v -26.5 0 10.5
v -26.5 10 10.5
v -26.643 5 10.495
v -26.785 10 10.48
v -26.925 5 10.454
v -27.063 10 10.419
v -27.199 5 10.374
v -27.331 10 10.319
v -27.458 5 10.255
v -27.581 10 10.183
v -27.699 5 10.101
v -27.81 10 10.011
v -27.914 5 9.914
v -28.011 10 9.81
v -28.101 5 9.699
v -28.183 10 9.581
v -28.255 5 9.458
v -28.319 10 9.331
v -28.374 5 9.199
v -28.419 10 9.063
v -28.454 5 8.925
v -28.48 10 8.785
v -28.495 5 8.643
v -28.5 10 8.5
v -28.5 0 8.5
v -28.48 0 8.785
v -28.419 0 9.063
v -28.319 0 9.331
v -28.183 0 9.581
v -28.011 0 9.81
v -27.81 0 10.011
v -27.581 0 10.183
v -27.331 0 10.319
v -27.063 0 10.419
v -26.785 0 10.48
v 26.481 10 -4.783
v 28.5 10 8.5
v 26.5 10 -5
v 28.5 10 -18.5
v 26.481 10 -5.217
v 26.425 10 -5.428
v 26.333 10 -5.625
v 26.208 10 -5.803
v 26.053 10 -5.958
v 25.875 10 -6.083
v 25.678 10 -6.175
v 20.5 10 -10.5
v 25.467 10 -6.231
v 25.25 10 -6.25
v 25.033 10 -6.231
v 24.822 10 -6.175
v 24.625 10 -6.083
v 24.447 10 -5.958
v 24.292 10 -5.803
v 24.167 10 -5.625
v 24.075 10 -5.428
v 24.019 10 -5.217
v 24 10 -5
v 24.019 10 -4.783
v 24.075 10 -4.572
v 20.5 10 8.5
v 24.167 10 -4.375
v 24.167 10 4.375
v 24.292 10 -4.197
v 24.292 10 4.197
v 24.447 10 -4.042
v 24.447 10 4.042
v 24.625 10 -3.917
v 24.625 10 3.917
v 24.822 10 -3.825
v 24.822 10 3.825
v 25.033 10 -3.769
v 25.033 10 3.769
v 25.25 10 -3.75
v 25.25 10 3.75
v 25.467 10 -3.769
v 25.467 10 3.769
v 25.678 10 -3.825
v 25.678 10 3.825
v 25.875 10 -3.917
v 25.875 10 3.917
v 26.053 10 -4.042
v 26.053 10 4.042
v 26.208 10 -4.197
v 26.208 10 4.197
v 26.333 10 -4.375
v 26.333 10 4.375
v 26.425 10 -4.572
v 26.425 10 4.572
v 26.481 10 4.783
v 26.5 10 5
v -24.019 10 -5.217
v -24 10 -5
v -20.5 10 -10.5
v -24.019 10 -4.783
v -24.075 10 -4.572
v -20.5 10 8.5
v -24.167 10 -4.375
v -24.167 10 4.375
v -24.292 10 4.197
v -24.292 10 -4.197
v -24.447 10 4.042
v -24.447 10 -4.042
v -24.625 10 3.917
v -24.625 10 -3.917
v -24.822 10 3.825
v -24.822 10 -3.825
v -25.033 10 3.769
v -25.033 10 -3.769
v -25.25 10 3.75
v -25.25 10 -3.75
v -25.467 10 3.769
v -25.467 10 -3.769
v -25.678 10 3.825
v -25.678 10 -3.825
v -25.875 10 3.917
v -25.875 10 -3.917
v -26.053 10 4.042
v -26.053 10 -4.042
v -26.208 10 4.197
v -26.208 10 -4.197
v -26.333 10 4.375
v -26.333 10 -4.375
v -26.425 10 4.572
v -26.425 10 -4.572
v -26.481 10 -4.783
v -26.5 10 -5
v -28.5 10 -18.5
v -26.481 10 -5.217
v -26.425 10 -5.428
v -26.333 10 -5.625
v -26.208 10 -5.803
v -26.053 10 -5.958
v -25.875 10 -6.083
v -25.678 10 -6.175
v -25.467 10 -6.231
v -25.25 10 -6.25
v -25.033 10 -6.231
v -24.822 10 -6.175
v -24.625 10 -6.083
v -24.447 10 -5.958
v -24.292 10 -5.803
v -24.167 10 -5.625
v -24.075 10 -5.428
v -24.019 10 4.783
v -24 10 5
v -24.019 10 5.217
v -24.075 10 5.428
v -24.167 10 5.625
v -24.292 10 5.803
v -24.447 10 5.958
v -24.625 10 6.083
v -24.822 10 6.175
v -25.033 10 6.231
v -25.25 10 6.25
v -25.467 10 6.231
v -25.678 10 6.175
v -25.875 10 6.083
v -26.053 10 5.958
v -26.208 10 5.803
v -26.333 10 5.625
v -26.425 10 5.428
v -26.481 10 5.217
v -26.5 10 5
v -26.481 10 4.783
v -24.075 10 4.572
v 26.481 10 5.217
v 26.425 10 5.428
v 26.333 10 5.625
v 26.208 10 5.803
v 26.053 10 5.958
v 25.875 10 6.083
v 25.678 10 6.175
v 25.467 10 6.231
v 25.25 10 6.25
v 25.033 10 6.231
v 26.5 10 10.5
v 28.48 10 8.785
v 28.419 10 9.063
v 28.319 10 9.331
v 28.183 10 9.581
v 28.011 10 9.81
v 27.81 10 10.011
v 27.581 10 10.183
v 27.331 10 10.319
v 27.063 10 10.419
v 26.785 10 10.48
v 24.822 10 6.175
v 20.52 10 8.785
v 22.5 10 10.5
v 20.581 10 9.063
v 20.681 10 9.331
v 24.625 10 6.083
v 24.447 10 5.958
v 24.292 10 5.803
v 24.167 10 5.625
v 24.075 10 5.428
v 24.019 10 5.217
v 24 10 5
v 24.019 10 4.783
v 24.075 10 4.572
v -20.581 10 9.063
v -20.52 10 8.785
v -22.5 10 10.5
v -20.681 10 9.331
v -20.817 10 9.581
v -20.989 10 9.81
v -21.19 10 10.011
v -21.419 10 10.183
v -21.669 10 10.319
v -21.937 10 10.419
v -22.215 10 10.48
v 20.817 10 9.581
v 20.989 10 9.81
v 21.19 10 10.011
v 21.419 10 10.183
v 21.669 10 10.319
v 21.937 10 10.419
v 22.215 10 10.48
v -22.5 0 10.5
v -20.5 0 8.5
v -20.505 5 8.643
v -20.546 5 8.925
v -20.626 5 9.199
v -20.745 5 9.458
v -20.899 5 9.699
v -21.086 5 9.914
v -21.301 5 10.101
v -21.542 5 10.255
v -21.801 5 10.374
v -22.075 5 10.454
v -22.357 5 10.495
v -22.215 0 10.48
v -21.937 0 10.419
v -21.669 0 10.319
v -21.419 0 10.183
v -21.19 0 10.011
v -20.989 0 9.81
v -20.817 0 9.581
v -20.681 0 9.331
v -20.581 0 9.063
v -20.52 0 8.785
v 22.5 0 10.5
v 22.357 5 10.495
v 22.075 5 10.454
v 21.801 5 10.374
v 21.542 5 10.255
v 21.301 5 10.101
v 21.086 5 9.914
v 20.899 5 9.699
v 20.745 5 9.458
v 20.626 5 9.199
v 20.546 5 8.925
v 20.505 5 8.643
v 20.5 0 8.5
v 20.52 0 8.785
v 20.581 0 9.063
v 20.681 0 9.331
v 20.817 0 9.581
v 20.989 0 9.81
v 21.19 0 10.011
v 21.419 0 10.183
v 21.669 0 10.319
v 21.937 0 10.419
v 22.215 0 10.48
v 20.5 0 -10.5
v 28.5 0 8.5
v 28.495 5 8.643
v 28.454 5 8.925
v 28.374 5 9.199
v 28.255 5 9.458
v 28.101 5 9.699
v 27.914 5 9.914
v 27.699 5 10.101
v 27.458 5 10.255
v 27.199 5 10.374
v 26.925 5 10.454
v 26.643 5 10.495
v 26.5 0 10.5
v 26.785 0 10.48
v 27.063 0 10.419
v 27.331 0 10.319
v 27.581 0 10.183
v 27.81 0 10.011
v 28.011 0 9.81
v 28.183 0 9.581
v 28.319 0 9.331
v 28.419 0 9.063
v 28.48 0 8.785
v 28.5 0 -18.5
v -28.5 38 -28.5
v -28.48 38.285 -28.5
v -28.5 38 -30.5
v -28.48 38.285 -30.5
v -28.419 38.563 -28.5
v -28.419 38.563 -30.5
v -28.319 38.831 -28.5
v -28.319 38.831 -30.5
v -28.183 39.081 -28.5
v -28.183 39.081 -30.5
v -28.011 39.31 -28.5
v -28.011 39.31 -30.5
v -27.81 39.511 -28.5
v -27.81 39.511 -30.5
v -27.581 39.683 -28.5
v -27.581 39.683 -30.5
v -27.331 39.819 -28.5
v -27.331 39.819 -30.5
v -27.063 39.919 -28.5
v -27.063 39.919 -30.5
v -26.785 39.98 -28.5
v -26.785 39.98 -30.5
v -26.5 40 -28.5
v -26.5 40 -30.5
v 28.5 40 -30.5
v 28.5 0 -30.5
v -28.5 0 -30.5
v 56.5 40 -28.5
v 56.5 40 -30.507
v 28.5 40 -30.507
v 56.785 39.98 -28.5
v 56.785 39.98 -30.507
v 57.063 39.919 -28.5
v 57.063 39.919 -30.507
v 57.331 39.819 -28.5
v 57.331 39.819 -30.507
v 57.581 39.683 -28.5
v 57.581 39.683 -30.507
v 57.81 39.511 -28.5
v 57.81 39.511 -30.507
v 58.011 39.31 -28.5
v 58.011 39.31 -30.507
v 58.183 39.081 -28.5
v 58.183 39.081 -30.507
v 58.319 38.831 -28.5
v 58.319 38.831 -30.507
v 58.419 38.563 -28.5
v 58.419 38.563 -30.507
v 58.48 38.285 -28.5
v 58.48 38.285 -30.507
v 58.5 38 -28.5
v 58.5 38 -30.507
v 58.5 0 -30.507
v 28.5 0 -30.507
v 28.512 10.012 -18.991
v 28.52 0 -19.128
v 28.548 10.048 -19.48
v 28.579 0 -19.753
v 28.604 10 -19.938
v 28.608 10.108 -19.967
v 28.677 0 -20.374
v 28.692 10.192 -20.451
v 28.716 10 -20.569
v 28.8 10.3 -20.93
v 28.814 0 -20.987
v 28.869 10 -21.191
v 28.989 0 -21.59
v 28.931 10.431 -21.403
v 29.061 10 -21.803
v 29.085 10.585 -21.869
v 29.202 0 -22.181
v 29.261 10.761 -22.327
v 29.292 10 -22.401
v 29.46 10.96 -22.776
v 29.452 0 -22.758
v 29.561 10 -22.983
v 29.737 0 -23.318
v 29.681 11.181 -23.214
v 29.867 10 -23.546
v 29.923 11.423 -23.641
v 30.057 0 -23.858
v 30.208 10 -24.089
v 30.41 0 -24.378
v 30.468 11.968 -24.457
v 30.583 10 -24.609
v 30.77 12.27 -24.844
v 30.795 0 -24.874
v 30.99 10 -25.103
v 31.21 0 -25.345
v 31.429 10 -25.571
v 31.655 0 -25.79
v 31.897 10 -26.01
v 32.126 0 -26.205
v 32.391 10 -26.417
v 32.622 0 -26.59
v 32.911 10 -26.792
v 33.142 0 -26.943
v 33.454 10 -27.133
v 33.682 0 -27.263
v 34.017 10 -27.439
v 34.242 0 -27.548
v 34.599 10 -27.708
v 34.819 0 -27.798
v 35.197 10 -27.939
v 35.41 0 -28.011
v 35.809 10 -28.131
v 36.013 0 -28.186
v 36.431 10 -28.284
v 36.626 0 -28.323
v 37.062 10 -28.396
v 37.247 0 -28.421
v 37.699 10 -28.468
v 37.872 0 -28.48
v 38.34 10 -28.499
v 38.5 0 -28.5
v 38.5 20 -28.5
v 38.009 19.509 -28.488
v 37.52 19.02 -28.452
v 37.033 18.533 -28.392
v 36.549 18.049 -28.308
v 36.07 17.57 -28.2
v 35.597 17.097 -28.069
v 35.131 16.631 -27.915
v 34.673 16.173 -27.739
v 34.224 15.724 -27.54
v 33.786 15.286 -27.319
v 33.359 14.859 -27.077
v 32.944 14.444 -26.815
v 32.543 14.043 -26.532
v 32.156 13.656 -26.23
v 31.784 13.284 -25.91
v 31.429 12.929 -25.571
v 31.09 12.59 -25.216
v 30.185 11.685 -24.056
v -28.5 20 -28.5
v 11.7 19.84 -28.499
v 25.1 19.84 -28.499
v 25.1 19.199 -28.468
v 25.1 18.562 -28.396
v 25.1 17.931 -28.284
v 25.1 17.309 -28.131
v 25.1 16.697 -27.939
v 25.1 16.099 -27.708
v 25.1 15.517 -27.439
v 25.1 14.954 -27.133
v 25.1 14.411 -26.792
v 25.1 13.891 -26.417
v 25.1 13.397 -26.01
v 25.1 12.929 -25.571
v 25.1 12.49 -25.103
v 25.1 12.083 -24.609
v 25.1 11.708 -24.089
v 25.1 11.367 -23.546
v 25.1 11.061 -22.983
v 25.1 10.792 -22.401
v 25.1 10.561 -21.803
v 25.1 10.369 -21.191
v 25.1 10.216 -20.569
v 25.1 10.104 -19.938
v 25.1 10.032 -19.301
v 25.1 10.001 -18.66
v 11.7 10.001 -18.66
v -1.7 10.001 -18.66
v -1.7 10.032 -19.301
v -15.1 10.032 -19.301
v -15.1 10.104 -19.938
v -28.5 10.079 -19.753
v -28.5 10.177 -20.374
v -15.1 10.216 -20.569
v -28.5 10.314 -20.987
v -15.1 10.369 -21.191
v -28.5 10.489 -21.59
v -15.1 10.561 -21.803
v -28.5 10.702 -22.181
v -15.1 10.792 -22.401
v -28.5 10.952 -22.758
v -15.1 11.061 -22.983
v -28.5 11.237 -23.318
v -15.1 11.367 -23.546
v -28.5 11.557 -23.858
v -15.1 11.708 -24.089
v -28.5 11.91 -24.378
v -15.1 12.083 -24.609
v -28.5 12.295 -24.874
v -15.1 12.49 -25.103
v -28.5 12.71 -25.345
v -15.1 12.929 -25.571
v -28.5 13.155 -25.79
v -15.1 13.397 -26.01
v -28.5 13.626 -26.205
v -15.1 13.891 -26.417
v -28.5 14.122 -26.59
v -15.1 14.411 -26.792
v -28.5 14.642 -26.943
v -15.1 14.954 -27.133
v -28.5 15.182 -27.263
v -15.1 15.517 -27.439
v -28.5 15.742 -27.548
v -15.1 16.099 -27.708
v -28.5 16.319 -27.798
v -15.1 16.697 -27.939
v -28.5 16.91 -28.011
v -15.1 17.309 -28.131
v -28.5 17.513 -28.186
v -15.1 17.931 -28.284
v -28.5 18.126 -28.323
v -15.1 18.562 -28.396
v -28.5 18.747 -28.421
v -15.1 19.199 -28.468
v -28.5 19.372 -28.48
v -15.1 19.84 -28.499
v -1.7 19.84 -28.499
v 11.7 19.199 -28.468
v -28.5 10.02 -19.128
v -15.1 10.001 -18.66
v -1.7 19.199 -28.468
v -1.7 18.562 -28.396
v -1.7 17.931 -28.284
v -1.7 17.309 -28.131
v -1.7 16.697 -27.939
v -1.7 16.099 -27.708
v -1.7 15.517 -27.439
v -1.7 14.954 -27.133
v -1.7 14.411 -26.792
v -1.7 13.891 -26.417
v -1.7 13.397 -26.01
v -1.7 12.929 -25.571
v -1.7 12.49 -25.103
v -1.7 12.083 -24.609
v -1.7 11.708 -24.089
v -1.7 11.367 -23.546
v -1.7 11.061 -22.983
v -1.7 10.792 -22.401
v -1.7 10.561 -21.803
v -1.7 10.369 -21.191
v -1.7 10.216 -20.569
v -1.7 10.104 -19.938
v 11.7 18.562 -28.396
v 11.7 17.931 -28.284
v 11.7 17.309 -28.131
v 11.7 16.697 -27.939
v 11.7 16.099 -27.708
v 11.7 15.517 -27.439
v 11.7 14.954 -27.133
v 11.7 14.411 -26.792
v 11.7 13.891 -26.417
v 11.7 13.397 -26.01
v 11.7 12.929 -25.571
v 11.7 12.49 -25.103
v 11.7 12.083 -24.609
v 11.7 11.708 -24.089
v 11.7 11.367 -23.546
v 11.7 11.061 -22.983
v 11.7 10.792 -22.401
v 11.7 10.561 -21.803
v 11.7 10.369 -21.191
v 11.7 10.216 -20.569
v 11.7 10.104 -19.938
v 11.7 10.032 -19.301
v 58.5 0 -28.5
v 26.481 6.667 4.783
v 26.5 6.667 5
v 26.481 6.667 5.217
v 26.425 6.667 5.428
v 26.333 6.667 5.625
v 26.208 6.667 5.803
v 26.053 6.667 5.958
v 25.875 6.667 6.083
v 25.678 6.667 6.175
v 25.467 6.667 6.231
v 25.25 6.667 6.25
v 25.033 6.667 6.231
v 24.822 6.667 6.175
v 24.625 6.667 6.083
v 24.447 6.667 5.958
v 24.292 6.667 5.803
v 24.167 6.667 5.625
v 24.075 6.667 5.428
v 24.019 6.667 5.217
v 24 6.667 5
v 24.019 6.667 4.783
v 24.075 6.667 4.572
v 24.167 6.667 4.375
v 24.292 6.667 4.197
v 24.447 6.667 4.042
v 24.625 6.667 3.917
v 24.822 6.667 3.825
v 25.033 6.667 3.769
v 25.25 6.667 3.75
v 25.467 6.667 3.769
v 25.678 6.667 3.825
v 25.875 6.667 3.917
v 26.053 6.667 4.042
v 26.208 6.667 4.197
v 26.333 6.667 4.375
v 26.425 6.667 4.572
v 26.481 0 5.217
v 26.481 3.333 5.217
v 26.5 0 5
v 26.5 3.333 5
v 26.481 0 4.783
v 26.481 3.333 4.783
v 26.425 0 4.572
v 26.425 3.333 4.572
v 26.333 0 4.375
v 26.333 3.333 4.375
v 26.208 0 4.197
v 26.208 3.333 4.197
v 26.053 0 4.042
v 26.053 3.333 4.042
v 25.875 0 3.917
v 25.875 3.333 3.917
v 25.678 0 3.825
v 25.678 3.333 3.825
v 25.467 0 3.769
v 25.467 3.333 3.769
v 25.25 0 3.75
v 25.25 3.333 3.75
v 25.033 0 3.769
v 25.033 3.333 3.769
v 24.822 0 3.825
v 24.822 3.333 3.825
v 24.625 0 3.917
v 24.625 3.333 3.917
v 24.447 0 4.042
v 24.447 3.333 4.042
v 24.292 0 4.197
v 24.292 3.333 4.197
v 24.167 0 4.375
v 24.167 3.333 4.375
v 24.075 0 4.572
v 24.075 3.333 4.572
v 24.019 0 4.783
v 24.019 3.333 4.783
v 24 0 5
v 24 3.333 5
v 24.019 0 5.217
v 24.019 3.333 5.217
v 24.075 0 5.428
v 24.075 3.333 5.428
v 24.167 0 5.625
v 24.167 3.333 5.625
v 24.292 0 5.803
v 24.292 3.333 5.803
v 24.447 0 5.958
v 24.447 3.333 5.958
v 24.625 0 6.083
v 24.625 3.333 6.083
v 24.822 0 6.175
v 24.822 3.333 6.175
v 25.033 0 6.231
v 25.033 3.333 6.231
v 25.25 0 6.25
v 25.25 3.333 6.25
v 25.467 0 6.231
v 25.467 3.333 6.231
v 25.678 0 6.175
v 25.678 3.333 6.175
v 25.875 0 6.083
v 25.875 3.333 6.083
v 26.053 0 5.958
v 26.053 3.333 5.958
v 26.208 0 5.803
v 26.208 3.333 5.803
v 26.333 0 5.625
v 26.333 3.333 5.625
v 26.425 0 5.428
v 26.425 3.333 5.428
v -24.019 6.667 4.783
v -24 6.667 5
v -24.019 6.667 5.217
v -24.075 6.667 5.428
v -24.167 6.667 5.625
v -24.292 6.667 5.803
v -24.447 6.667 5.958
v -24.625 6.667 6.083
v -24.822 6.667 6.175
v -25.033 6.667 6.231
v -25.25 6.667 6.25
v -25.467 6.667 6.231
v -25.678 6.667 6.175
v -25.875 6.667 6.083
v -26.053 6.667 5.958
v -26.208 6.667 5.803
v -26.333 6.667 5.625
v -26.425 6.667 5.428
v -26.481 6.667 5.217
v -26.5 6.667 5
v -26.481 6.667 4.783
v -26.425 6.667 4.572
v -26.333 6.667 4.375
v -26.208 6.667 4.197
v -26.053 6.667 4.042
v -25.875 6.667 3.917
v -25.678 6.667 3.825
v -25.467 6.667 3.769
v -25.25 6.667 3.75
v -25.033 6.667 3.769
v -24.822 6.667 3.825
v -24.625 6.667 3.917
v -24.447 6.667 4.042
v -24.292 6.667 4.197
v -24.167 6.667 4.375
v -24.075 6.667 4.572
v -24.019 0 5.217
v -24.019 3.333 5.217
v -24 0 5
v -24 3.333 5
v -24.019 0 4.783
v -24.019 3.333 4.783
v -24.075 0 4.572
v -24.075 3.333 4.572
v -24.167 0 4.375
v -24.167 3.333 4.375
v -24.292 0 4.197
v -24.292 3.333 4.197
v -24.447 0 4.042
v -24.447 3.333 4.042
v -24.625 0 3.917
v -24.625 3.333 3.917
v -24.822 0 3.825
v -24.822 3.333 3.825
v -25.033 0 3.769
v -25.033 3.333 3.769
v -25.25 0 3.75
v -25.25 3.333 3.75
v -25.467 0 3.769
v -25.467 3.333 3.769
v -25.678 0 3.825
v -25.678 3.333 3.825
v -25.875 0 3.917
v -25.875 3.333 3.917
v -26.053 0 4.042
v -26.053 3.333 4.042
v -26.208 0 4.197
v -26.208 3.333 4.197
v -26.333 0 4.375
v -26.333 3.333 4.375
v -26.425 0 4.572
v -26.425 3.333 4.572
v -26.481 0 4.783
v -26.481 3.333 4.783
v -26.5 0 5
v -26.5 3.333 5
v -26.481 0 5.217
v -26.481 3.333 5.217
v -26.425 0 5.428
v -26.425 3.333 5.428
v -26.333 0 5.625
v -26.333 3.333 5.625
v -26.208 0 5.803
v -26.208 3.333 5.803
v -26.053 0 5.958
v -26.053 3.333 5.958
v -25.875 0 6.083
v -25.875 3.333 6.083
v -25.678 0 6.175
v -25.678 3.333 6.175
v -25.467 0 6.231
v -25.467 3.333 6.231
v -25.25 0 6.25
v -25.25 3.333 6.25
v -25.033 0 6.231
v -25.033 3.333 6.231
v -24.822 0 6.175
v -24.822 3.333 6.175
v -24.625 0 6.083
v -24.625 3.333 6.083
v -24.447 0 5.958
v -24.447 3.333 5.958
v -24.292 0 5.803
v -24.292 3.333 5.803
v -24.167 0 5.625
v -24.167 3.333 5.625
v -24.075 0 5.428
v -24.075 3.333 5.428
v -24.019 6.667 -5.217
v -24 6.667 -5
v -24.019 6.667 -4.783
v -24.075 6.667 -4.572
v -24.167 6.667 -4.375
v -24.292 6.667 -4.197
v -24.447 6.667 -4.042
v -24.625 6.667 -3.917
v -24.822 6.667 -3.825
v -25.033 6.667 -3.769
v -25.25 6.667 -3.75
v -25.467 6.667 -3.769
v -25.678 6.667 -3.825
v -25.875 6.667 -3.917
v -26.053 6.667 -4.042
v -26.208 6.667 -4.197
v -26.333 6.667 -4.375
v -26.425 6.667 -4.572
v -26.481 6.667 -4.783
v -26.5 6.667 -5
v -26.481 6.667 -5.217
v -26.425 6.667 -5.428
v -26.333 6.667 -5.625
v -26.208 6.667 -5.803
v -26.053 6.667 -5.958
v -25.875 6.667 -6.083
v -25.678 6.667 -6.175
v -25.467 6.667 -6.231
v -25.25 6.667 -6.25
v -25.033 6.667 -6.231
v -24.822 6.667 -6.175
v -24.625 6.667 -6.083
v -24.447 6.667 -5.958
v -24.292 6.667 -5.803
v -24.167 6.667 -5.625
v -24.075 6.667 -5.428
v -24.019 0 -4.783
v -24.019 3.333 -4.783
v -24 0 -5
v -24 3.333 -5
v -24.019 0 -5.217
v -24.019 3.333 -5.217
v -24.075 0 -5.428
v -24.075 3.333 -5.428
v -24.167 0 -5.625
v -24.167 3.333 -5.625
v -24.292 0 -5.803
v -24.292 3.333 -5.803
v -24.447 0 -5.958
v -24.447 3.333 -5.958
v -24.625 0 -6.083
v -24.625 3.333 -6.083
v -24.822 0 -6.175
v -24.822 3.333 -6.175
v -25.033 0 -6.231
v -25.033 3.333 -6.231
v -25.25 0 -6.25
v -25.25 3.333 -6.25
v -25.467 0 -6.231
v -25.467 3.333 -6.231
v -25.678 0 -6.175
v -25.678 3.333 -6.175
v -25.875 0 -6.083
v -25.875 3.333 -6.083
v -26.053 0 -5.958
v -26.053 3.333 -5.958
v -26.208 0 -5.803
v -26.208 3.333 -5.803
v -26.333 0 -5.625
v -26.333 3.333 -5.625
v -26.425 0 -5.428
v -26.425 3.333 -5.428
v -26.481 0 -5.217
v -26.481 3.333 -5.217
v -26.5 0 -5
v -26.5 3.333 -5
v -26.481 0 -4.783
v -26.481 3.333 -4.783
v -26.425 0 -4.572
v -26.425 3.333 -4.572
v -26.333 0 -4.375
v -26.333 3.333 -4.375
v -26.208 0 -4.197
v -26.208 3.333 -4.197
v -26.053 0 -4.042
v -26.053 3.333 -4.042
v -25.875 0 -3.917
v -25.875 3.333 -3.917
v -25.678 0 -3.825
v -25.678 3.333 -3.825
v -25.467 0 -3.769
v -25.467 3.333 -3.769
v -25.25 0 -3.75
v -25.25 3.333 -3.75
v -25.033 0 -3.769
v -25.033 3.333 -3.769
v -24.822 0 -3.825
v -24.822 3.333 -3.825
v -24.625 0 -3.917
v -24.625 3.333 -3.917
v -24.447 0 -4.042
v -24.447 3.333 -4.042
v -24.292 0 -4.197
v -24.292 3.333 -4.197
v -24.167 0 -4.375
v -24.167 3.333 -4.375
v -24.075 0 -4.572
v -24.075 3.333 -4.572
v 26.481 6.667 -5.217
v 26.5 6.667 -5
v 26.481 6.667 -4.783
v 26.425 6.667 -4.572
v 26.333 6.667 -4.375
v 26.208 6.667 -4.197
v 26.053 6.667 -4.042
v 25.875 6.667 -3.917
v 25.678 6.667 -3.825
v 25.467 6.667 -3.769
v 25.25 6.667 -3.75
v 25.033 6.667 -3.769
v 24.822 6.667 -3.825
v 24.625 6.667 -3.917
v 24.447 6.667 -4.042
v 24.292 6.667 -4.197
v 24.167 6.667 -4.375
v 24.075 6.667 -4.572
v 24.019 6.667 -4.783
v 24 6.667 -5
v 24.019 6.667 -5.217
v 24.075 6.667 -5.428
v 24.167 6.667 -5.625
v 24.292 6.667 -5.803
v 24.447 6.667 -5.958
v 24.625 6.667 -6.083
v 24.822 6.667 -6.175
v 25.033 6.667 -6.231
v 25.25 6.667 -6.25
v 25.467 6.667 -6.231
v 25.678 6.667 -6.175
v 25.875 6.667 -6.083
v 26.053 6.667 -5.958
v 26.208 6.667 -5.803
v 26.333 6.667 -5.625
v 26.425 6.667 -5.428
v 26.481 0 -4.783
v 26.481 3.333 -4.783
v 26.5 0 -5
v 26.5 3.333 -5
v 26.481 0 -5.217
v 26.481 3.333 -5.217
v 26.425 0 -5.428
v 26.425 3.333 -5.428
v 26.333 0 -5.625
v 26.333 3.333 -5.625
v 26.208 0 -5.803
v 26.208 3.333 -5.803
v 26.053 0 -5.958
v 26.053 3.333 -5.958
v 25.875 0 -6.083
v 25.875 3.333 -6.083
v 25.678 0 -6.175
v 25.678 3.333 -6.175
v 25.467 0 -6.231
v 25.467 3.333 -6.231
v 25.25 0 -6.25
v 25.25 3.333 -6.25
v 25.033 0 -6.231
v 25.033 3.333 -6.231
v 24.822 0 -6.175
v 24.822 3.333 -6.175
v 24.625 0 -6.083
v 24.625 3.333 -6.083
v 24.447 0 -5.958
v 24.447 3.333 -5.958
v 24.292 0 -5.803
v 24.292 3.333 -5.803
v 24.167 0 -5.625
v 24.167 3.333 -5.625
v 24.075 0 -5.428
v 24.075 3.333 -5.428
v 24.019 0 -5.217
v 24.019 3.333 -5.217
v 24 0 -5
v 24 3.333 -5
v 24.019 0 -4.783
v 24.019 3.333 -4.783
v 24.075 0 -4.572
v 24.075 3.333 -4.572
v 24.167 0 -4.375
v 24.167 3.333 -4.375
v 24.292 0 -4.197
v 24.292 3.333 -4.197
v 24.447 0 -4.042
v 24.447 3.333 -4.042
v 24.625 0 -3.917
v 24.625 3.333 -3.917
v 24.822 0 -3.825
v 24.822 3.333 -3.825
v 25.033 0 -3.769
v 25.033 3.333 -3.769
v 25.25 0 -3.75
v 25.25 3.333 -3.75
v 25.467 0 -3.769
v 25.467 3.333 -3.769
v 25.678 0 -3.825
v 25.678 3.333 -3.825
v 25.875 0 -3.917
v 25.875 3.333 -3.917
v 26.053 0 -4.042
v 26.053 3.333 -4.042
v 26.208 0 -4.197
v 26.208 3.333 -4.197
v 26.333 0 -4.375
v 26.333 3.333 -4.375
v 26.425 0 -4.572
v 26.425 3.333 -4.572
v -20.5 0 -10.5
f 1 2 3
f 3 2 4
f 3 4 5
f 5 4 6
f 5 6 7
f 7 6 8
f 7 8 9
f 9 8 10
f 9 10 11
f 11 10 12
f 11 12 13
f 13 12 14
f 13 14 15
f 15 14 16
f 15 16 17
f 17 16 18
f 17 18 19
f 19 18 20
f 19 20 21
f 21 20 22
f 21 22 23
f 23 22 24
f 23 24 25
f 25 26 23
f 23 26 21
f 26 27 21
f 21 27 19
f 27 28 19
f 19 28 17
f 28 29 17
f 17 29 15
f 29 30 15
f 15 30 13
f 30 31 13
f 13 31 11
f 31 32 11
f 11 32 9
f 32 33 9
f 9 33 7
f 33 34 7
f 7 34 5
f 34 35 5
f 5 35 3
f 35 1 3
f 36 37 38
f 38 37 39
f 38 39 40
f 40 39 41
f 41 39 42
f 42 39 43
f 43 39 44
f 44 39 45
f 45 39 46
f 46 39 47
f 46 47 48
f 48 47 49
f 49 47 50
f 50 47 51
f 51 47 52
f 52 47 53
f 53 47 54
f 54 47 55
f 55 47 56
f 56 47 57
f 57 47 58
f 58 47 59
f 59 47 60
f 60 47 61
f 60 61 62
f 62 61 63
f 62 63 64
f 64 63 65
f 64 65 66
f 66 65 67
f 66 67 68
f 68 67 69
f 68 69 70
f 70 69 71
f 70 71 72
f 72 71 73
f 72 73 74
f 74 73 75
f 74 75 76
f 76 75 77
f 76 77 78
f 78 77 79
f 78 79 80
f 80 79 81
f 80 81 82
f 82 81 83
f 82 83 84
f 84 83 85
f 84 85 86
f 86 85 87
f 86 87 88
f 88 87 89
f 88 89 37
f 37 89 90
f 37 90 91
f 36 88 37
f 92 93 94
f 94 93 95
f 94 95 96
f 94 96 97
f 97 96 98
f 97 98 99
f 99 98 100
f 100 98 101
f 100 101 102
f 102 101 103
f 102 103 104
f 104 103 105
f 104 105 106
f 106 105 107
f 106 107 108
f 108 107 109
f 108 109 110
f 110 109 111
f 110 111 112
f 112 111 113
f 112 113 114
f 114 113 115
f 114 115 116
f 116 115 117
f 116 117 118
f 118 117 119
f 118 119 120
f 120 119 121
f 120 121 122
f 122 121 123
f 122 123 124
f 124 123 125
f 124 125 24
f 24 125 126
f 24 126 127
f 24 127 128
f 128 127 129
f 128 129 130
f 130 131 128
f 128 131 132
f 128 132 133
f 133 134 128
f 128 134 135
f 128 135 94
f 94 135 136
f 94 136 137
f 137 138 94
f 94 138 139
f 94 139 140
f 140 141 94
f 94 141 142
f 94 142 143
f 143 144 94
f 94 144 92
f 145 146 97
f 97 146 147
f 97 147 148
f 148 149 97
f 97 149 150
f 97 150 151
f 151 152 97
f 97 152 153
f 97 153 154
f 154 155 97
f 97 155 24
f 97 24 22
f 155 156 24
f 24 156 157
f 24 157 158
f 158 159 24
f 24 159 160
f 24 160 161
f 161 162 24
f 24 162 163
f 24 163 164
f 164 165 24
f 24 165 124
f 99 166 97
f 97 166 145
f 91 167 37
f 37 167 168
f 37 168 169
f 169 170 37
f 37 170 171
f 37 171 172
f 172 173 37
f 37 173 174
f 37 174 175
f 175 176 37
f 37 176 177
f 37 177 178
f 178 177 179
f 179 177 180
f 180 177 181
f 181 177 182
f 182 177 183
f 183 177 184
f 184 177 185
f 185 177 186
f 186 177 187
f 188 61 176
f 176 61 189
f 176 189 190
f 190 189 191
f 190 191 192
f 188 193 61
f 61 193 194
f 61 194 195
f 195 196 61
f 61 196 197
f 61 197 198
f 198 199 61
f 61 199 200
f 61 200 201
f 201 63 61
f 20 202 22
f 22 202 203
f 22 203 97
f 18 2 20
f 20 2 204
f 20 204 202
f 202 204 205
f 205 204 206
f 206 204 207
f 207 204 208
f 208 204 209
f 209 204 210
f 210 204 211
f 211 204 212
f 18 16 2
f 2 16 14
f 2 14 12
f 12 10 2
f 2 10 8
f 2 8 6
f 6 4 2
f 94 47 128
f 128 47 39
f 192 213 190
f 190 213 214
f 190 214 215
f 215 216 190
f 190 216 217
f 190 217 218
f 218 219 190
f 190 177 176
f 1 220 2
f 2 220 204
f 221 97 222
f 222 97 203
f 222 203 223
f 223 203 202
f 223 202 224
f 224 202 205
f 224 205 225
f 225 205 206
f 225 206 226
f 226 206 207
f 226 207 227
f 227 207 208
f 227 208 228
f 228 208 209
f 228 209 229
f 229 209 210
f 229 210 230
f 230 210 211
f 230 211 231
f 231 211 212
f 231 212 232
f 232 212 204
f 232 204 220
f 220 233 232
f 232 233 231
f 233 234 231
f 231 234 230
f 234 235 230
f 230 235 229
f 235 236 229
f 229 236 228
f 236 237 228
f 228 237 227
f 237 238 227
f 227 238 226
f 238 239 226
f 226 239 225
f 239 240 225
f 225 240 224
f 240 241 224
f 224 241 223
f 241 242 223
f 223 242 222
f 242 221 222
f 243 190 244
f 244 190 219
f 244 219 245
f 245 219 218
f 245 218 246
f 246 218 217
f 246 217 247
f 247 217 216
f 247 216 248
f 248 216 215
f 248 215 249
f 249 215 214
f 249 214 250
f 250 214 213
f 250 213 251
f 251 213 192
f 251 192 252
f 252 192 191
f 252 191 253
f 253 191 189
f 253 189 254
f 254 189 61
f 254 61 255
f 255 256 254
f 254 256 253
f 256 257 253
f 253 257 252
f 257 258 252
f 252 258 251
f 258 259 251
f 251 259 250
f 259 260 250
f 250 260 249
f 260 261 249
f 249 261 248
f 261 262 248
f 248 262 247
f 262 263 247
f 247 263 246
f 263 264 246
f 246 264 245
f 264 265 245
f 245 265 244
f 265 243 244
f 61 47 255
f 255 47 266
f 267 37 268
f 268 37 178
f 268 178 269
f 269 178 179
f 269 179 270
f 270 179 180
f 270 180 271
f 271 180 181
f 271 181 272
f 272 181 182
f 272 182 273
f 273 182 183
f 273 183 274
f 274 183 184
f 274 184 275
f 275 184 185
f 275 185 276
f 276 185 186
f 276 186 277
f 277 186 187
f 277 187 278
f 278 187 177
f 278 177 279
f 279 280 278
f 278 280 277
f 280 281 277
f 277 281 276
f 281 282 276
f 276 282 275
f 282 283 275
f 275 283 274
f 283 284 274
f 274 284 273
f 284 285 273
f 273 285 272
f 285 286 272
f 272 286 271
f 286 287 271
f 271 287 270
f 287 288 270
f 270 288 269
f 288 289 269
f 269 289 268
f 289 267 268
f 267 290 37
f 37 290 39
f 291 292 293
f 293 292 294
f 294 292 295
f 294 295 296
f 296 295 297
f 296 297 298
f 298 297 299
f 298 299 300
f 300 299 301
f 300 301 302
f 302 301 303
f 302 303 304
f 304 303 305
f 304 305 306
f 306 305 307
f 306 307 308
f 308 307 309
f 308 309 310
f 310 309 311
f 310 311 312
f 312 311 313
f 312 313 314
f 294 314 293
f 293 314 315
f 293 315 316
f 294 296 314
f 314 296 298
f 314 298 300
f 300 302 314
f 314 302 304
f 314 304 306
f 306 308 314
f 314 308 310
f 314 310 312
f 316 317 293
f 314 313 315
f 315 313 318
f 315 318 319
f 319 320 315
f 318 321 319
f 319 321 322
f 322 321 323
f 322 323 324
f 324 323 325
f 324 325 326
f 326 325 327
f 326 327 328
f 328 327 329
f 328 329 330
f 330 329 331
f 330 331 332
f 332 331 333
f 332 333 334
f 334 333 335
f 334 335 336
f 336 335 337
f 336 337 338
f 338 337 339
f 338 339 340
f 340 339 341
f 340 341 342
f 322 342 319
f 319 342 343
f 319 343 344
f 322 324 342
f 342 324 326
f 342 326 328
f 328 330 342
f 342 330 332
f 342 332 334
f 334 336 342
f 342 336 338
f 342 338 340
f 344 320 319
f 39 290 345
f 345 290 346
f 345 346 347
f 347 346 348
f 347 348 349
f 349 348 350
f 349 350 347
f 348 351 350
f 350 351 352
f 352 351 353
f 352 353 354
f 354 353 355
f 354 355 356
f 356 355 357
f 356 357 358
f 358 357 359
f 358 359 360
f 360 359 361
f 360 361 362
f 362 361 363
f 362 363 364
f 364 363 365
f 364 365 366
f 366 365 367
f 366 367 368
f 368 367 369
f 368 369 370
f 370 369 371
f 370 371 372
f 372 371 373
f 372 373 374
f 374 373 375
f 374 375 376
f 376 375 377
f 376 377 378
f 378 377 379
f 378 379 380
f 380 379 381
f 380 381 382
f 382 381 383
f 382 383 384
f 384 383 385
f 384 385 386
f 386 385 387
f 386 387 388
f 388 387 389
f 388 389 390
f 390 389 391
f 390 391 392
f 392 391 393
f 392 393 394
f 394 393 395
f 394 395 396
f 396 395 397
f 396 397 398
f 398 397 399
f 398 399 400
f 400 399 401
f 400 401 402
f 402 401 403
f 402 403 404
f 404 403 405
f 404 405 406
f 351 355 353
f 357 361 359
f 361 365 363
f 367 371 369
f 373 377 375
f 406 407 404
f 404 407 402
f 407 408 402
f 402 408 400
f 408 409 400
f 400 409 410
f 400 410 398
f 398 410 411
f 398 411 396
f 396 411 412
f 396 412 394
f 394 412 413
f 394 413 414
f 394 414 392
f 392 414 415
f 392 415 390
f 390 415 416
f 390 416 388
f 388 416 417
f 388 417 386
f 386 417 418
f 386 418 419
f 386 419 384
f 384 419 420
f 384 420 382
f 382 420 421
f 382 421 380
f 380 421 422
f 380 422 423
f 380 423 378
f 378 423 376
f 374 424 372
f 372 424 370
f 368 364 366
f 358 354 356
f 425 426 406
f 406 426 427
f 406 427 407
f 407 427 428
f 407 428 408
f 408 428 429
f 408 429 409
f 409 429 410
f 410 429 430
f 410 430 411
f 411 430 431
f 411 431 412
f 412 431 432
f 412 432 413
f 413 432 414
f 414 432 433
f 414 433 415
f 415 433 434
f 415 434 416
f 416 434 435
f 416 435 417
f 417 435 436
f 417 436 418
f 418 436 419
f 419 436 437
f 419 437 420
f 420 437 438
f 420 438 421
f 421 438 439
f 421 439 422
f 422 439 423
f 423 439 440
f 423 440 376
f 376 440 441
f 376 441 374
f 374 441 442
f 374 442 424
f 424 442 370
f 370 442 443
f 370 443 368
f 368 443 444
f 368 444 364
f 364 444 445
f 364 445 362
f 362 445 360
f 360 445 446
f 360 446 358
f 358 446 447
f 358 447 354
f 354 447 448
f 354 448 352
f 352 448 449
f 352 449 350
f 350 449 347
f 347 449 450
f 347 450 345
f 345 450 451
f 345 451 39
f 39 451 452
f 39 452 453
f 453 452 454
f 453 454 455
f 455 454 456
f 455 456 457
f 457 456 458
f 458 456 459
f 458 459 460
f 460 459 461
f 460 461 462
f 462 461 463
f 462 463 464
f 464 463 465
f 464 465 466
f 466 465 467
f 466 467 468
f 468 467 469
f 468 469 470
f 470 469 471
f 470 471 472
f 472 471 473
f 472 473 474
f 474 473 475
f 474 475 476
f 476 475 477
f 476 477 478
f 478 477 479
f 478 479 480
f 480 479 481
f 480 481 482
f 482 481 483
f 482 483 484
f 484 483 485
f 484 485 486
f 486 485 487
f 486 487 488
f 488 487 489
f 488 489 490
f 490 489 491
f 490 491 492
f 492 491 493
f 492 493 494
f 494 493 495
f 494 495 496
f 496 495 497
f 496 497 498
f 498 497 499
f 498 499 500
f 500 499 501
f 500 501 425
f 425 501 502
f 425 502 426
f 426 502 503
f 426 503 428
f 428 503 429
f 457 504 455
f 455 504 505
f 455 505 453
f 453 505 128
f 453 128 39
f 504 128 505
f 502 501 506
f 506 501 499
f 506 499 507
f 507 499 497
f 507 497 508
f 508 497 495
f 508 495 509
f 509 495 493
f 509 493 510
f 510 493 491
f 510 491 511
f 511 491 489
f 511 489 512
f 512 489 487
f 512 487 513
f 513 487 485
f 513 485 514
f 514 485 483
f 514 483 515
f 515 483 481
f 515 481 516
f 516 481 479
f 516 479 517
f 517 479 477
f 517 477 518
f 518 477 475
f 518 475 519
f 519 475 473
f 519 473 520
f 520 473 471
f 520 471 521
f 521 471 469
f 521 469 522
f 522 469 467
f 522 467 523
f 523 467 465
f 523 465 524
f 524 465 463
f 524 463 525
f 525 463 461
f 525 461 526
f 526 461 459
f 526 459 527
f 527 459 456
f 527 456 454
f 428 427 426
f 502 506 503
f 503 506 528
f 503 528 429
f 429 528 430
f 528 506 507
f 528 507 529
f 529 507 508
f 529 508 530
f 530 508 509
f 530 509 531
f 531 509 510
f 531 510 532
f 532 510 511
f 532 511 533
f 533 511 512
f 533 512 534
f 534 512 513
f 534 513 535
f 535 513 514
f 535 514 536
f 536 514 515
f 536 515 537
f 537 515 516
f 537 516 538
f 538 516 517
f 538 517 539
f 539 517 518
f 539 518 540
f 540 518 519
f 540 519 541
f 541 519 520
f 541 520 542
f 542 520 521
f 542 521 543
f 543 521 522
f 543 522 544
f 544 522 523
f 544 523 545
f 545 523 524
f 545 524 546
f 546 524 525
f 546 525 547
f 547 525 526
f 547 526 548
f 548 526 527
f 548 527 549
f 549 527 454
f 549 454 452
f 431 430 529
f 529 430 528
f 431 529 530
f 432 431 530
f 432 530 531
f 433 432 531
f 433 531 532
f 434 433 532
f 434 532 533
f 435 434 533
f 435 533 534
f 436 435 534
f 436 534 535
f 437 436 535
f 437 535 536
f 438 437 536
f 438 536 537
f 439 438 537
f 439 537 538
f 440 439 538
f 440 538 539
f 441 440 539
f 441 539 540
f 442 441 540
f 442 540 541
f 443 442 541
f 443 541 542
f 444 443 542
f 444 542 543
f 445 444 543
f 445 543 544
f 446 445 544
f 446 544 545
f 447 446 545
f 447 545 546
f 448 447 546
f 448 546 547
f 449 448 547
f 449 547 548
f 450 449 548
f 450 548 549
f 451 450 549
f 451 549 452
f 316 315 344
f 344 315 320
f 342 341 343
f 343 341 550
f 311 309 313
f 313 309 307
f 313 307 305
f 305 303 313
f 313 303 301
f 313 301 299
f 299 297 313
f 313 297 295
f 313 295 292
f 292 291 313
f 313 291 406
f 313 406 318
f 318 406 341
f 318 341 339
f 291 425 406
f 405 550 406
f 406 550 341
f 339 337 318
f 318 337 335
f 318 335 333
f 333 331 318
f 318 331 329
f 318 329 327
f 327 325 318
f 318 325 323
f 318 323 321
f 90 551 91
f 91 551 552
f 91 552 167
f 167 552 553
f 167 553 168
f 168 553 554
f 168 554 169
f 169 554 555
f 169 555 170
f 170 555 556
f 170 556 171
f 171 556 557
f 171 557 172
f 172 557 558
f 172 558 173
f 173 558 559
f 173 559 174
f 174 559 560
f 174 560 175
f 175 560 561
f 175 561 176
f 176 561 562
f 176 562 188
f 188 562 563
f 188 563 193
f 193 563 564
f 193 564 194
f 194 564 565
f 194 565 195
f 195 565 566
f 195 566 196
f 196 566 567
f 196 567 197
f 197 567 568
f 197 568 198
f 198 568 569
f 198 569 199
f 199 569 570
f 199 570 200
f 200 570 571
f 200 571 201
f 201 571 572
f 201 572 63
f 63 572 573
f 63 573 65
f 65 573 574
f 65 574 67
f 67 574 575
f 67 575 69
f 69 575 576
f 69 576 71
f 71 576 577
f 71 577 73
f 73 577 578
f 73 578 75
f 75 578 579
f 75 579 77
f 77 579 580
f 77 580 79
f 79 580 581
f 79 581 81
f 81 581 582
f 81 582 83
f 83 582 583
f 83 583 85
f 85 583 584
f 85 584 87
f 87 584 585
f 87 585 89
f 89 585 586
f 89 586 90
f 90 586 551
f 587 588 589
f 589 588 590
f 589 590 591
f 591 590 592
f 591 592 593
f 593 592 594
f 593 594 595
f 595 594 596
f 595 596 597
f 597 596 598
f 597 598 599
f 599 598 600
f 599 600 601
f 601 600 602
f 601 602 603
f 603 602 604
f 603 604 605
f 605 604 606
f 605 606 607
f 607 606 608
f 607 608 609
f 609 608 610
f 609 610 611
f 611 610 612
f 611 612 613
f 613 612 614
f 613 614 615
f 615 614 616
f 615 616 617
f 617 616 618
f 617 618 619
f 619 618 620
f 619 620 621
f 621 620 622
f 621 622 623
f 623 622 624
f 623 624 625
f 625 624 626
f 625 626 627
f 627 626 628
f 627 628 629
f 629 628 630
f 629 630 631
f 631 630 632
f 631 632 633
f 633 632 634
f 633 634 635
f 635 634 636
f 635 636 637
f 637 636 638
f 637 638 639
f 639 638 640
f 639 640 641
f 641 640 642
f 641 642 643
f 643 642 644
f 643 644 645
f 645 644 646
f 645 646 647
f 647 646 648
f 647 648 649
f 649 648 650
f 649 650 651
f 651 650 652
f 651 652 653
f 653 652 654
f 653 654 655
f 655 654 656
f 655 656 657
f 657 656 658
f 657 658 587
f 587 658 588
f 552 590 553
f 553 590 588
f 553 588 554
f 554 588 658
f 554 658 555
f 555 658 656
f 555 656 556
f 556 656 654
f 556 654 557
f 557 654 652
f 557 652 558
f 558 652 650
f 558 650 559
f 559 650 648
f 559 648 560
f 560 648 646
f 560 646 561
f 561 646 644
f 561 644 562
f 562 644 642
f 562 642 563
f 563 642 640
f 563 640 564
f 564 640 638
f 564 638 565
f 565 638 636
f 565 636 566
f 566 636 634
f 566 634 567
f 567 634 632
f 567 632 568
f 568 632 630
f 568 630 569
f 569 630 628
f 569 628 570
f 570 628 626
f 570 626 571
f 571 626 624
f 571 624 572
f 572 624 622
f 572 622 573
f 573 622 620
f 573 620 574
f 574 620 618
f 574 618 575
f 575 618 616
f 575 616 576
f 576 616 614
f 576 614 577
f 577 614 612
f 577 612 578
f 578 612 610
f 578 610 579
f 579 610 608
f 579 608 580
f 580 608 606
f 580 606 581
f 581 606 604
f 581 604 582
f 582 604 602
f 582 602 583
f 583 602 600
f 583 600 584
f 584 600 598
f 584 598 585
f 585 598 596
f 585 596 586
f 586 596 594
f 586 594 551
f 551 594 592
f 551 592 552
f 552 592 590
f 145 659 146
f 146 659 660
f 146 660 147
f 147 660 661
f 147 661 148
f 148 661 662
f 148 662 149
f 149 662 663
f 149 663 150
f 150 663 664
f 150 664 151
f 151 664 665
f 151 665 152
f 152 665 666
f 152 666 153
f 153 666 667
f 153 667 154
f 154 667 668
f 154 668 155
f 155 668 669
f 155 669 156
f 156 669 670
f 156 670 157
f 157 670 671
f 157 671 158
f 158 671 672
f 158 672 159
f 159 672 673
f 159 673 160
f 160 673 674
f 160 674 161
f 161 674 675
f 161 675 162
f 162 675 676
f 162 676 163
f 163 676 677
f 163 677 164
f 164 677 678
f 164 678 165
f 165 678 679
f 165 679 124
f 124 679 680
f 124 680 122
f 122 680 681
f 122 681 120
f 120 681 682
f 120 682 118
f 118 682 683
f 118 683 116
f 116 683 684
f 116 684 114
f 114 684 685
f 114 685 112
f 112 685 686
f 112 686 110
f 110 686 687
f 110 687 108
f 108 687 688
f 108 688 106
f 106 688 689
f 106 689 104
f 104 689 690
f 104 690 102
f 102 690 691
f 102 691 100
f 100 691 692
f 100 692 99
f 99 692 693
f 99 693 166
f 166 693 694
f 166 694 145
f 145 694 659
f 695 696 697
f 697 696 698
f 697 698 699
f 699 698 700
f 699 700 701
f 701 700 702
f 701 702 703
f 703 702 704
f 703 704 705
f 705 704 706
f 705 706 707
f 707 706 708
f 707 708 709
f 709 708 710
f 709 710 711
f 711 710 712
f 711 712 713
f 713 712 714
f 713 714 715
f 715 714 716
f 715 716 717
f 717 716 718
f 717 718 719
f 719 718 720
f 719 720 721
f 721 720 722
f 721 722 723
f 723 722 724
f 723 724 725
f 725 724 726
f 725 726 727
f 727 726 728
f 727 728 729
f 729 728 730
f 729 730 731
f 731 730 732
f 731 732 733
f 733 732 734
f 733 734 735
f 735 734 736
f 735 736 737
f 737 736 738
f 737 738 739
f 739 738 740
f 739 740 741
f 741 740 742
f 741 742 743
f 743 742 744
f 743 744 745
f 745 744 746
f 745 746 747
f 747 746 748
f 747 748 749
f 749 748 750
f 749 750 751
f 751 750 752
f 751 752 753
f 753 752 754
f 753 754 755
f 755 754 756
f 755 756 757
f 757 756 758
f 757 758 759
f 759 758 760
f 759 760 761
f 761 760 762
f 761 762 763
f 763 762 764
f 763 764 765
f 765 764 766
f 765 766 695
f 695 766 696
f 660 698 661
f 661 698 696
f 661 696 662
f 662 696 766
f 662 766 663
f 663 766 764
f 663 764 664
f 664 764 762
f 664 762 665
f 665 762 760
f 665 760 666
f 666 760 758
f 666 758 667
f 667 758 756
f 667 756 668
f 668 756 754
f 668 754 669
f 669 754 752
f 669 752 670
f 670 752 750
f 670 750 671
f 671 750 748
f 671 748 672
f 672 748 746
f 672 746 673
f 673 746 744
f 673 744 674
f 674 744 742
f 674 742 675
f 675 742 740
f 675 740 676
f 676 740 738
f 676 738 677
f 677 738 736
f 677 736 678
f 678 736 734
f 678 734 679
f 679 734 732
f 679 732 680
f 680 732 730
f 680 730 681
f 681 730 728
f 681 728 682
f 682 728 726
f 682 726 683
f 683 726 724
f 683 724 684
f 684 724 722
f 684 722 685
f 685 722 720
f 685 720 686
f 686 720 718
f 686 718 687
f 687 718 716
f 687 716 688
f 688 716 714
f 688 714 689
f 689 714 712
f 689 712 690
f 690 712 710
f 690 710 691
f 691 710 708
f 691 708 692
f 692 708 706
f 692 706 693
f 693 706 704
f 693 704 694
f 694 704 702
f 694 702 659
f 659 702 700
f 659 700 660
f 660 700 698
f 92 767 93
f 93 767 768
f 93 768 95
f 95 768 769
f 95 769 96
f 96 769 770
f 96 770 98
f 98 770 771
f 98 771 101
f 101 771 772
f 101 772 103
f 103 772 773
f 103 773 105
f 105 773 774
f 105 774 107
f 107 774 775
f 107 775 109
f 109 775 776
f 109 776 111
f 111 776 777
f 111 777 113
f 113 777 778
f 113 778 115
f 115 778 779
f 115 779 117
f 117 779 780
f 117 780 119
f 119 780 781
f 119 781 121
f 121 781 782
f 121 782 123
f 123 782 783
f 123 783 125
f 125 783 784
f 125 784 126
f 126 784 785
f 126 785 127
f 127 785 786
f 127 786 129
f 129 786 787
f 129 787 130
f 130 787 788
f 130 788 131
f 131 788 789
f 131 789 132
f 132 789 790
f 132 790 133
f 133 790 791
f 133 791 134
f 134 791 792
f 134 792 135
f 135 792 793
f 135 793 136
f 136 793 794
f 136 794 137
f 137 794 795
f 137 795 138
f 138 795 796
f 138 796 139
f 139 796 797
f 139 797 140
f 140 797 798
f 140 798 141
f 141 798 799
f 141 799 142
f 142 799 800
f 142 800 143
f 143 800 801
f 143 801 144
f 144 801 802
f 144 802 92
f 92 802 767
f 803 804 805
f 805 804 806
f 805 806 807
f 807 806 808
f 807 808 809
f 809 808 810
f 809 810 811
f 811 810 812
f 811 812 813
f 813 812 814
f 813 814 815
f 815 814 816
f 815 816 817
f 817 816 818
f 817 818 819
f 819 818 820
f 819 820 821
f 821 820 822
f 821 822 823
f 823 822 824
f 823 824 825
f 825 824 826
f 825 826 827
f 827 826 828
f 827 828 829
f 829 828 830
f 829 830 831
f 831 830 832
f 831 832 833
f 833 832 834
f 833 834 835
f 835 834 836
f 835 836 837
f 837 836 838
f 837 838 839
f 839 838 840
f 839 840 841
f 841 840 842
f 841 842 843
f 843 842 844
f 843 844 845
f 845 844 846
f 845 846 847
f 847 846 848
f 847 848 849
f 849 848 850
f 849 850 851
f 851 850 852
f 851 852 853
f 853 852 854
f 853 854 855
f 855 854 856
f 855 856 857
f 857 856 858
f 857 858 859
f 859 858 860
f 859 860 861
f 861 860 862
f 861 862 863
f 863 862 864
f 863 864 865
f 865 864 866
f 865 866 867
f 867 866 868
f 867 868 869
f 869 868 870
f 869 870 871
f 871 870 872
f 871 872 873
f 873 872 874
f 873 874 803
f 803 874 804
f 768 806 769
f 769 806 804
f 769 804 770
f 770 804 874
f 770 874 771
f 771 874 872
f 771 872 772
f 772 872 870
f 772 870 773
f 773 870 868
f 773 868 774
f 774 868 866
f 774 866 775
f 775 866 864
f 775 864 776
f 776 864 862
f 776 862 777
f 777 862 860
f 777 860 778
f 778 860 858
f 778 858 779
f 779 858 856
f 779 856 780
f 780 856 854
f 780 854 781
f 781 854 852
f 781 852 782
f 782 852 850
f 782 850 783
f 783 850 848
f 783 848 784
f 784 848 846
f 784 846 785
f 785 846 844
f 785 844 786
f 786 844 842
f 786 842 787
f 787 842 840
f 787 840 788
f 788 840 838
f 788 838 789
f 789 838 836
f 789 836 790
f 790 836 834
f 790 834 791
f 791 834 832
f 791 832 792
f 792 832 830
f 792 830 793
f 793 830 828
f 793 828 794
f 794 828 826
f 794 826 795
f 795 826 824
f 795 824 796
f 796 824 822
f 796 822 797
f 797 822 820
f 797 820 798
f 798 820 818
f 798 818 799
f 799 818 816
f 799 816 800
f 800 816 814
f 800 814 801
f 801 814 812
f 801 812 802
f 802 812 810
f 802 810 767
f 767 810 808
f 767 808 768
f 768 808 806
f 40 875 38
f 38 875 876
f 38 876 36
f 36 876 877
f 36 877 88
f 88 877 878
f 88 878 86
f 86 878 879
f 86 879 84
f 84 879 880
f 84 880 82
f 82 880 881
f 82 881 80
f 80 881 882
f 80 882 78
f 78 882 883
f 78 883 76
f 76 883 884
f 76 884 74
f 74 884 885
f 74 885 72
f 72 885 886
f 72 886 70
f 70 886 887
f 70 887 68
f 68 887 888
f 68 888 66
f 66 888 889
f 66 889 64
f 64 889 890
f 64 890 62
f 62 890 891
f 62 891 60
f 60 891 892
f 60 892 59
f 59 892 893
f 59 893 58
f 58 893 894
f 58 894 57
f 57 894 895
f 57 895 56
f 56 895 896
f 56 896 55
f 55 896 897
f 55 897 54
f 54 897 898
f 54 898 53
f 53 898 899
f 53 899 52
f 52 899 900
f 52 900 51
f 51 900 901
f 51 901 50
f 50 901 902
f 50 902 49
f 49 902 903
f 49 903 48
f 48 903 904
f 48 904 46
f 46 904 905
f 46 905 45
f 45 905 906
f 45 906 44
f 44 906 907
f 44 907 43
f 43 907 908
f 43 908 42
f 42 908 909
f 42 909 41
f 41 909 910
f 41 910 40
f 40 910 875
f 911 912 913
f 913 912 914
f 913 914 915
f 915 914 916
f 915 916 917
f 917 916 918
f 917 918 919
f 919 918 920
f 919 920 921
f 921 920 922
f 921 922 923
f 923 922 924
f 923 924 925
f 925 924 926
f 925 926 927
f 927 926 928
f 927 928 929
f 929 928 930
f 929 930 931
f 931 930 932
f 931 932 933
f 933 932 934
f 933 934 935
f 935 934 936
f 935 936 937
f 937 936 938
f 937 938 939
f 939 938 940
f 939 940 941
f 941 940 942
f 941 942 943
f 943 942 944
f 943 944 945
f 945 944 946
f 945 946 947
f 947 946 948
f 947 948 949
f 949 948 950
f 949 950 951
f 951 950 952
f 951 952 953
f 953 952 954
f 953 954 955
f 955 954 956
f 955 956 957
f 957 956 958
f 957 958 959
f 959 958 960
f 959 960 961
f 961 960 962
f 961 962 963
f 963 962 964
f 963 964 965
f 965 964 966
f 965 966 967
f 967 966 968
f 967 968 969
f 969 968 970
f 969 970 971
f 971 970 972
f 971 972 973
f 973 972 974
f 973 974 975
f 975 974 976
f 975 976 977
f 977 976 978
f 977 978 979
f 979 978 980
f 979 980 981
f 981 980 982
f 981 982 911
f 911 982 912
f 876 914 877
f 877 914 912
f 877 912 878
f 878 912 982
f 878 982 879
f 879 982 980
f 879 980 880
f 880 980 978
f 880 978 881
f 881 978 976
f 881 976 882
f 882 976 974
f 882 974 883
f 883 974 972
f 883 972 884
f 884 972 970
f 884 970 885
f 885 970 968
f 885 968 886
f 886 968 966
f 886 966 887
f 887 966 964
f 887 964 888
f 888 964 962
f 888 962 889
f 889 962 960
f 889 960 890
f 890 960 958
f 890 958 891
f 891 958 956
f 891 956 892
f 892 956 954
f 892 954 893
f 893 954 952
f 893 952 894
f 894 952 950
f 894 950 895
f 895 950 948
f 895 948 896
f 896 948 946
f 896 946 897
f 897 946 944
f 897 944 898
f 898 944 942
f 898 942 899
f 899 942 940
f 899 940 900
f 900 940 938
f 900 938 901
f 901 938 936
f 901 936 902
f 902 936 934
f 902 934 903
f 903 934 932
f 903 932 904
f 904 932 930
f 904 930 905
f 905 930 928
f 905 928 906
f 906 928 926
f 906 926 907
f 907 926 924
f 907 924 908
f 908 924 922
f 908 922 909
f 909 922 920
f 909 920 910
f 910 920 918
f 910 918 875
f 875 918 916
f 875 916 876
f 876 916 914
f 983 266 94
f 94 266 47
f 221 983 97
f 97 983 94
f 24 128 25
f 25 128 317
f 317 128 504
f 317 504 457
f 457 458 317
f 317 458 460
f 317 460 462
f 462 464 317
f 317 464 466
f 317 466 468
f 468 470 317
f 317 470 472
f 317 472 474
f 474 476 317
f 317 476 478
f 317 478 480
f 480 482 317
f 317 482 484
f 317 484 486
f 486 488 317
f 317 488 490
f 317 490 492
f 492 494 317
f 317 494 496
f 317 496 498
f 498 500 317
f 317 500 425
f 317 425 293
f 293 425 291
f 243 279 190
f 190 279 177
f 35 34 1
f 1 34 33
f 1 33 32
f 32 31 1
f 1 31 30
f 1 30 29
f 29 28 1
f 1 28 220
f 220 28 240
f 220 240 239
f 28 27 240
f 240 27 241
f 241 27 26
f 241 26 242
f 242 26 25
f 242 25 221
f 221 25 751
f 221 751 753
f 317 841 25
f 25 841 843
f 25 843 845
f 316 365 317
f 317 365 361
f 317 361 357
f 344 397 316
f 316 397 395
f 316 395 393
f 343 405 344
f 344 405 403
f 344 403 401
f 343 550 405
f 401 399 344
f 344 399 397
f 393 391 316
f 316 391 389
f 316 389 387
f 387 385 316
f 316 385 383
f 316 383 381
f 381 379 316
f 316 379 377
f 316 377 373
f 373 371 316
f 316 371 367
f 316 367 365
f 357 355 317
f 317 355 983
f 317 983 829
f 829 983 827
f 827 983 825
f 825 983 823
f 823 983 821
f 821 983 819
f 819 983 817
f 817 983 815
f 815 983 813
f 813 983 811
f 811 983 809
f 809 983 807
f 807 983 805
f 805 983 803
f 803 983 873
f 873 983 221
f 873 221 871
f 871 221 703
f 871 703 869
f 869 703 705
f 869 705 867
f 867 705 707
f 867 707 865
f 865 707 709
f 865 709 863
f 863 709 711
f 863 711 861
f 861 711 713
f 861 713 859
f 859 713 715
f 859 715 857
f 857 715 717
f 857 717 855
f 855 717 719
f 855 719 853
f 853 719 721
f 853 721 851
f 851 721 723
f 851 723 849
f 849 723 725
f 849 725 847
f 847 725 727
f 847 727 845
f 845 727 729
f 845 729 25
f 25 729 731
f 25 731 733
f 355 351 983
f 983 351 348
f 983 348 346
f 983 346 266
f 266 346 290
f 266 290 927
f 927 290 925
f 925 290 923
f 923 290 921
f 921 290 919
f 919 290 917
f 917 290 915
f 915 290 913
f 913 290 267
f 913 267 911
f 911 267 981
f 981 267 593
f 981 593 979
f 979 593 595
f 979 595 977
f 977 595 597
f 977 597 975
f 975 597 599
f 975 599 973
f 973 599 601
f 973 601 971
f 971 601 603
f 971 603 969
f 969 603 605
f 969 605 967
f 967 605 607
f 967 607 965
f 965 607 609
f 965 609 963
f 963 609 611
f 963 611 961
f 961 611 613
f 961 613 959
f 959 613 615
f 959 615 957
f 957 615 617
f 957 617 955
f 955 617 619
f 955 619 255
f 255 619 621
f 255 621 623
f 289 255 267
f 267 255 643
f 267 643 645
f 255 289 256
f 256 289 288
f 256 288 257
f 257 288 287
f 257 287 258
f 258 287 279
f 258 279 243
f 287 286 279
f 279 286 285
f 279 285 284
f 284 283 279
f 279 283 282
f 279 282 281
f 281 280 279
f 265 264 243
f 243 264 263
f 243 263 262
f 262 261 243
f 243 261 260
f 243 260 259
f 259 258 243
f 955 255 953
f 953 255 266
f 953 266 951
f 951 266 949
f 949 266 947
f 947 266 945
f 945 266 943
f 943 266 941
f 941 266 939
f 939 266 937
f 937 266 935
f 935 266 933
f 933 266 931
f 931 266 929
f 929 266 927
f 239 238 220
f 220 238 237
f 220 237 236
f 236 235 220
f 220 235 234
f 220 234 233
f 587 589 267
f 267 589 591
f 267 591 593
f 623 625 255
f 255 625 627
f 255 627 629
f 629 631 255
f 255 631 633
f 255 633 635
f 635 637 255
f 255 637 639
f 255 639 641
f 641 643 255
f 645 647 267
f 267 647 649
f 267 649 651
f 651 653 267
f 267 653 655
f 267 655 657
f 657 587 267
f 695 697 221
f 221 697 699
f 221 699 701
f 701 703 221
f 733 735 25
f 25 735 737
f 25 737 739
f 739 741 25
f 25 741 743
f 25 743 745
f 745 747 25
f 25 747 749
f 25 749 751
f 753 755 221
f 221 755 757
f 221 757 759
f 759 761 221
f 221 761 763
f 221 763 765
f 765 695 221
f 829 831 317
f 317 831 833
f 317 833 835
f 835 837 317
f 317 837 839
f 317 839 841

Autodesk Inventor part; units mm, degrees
ref_plane "YZ Plane" through (0, 0, 0) normal (1, 0, 0) x (0, 1, 0)
ref_plane "XZ Plane" through (0, 0, 0) normal (0, 1, 0) x (-1, 0, 0)
ref_plane "XY Plane" through (0, 0, 0) normal (0, 0, 1) x (1, 0, 0)
sketch "Sketch1" plane through (0, 0, 0) normal (0, 1, 0) x (-1, 0, 0)
  line L0 (-20.5, 10.5) -> (20.5, 10.5)
  line L1 (20.5, 10.5) -> (20.5, -10.5)
  line L2 (20.5, -10.5) -> (-20.5, -10.5)
  line L3 (-20.5, -10.5) -> (-20.5, 10.5)
  line L4 (-20.5, 10.5) -> (20.5, -10.5) construction
  line L5 (20.5, 10.5) -> (-20.5, -10.5) construction
  line L6 (20.5, 10.5) -> (28.5, 10.5)
  line L7 (28.5, 10.5) -> (28.5, -30.5)
  line L8 (28.5, -30.5) -> (-28.5, -30.5)
  line L9 (-28.5, -30.5) -> (-28.5, 10.5)
  line L10 (-28.5, 10.5) -> (-20.5, 10.5)
  line L11 (-25.25, -5) -> (25.25, -5) construction
  line L12 (25.25, -5) -> (25.25, 5) construction
  line L13 (25.25, 5) -> (-25.25, 5) construction
  line L14 (-25.25, 5) -> (-25.25, -5) construction
  line L15 (-25.25, -5) -> (25.25, 5) construction
  line L16 (25.25, -5) -> (-25.25, 5) construction
  point P0 (0, 0)
  dimension "d0" = 41
  dimension "d1" = 21
  dimension "d2" = 8
  dimension "d3" = 41
  dimension "d4" = 8
  dimension "d5" = 50.5
  dimension "d6" = 10
extrude "Extrusion1" add sketch "Sketch1" along normal blind 10 contours L3 L2 L1 L6 L7 L8 L9 L10
hole "Hole1" at (-25.25, 0, 5) at (-25.25, 0, -5) at (25.25, 0, 5) at (25.25, 0, -5) direction (0, 1, 0) diameter 2.5 end through all both
sketch "Sketch2" plane through (0, 10, 0) normal (0, 1, 0) x (1, 0, 0)
  line L0 (-28.5, 30.5) -> (-28.5, -10.5) projected
  line L1 (28.5, -10.5) -> (28.5, 30.5) projected
  line L2 (-28.5, 30.5) -> (28.5, 30.5)
  line L3 (28.5, 30.5) -> (28.5, 28.5)
  line L4 (28.5, 28.5) -> (-28.5, 28.5)
  line L5 (-28.5, 28.5) -> (-28.5, 30.5)
  point P0 (0, 0)
  dimension "d16" = 2
extrude "Extrusion2" add sketch "Sketch2" along normal blind 30
sketch "Sketch3" plane through (28.5, 0, 10.5) normal (1, 0, 0) x (0, 0, -1)
  line L0 (39, 10) -> (39, 40) projected
  line L1 (41.007, 0) -> (39, 0)
  line L2 (39, 0) -> (39, 40)
  line L3 (39, 40) -> (41.007, 40)
  line L4 (41.007, 40) -> (41.007, 0)
  point P0 (10.5, 0)
extrude "Extrusion3" add sketch "Sketch3" along normal blind 30
fillet "Fillet2" radius 10 2 edges at (28.5, 5, -28.5) (0, 10, -28.5)
fillet "Fillet2" radius 2 6 edges at (58.5, 40, -29.5035) (-28.5, 40, -29.5) (28.5, 5, 10.5) (20.5, 5, 10.5) (-20.5, 5, 10.5) (-28.5, 5, 10.5)
equation "\"d4\" = d2"
properties part number "servoholder"
